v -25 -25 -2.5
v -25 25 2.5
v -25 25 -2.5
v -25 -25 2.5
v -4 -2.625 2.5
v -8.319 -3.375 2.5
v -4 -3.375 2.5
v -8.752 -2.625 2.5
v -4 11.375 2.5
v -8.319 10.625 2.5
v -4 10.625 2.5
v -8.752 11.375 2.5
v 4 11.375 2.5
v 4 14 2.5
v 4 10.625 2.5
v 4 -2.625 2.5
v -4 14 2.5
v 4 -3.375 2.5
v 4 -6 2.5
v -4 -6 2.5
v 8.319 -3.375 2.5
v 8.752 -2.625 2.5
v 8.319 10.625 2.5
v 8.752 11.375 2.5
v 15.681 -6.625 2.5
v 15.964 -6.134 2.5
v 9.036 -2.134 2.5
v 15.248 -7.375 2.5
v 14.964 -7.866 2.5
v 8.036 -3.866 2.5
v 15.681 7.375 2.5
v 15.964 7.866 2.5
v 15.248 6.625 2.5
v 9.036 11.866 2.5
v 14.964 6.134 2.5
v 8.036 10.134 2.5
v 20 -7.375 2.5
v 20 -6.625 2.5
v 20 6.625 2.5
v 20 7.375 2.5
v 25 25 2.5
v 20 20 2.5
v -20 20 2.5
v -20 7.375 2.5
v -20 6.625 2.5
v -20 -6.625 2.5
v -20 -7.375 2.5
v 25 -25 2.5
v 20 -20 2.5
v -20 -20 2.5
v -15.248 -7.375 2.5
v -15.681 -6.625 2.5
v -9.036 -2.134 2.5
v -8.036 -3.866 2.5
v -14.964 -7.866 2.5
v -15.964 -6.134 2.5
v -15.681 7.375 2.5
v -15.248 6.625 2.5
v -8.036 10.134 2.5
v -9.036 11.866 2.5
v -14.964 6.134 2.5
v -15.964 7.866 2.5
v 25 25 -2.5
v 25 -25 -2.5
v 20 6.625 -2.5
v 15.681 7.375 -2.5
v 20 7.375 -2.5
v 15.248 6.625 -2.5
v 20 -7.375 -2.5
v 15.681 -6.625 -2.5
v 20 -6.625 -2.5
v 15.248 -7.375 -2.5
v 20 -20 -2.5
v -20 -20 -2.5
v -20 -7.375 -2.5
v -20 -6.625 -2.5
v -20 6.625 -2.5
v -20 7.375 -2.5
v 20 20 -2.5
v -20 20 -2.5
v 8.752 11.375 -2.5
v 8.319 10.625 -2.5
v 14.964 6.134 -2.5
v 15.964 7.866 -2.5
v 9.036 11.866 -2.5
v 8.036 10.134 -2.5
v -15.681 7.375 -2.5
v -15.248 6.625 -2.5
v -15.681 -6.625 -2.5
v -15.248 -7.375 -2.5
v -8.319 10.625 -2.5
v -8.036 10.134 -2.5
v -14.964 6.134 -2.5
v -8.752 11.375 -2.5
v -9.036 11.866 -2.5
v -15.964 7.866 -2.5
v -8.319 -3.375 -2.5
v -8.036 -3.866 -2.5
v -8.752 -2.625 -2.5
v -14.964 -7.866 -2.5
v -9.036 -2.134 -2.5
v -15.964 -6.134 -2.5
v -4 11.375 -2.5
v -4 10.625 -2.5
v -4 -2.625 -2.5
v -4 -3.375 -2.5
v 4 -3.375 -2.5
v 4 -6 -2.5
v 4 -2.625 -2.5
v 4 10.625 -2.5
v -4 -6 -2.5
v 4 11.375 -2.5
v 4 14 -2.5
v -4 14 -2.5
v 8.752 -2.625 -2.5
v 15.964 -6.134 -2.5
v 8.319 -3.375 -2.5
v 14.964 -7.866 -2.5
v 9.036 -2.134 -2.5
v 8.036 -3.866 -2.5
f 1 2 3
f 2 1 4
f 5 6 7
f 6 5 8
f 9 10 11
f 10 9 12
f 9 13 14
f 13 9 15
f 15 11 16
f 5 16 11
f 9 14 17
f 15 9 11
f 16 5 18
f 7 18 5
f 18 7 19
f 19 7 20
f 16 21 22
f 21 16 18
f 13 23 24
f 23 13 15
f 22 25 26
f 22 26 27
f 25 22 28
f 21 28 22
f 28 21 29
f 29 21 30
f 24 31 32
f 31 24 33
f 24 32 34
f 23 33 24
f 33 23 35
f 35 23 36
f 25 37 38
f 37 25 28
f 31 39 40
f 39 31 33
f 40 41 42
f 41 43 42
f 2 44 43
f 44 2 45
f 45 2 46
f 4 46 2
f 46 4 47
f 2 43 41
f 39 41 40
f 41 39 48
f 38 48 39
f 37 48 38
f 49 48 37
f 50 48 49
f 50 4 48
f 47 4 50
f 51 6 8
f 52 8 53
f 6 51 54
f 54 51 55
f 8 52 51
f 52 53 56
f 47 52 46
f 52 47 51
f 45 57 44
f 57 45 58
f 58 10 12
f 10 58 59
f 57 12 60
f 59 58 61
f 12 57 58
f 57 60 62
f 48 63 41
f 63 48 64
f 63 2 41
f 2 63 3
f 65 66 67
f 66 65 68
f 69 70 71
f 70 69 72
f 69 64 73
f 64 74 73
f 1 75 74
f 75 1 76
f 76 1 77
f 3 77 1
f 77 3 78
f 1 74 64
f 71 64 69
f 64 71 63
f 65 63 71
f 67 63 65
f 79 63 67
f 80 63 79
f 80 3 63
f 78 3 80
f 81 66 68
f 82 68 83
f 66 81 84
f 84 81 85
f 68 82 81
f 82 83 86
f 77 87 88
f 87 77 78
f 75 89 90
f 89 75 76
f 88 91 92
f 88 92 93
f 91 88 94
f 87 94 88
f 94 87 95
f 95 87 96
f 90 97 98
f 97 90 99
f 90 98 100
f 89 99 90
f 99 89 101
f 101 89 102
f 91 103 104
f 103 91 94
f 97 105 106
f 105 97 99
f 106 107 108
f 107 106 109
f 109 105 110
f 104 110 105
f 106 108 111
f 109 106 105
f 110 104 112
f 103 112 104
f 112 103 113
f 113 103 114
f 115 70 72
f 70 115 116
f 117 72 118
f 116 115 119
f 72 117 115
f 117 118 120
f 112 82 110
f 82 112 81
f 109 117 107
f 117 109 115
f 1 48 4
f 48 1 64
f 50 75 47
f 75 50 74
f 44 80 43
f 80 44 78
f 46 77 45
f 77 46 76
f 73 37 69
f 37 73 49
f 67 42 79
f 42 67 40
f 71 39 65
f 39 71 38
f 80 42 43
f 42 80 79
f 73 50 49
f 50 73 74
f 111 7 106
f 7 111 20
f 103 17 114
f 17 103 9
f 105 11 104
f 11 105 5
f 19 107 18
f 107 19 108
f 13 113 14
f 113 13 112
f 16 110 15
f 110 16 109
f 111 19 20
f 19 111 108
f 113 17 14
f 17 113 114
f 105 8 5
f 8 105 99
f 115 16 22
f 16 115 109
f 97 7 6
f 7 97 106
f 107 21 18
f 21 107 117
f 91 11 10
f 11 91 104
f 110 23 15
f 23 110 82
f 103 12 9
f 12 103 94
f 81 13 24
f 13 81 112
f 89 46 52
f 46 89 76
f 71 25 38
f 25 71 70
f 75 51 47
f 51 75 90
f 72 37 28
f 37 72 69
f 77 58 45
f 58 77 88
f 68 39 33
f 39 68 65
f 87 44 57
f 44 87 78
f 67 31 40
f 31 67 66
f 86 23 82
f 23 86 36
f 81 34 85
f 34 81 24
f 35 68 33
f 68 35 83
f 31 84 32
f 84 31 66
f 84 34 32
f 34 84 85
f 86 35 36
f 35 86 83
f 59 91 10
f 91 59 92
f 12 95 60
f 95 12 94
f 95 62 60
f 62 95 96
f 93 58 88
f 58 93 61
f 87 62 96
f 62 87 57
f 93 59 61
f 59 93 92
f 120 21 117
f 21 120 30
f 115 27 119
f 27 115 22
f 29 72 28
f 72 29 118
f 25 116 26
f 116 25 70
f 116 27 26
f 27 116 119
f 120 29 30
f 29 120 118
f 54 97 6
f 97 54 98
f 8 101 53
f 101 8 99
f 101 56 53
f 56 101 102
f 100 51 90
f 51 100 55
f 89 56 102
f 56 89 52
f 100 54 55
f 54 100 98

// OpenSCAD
difference(){
    cube([50, 50, 5], true);
    cube([40, 40, 10], true);
}

translate([0,4,0]) {
    intersection() {
            cube([18, 20, 10], true);
    union() {
        cube([8, 20, 5], true);
        translate([0, -7, 0]) cube([50,0.75,5], true);
        translate([0, +7, 0]) cube([50,0.75,5], true);
    }
}
};


difference() {
    union(){
        translate([0, -7, 0]) cube([50,0.75,5], true);
        translate([0, +7, 0]) cube([50,0.75,5], true);
    }

    cube([30,30,8], true);
}


translate([12,9,0]) rotate([0,0,-30]) cube([8, 2, 5], true);

translate([-12,9,0]) rotate([0,0,30]) cube([8, 2, 5], true);

translate([12,-5,0]) rotate([0,0,-30]) cube([8, 2, 5], true);

translate([-12,-5,0]) rotate([0,0,30]) cube([8, 2, 5], true);
